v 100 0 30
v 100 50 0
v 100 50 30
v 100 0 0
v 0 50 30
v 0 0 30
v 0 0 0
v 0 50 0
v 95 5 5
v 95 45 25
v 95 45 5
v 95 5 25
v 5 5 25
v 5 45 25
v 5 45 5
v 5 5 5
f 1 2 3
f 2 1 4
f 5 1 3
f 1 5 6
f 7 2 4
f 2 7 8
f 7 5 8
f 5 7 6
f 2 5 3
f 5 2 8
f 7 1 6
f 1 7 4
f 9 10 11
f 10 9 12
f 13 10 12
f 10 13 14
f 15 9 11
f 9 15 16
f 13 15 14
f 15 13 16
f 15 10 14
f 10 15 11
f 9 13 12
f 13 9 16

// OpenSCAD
module open_box(width, height, depth, wall_thickness) {
  difference() {
    cube([width, height, depth]);
    translate([wall_thickness, wall_thickness, wall_thickness]) {
      cube([width - 2 * wall_thickness, height - 2 * wall_thickness, depth - 2 * wall_thickness]);
    }
  }
}

open_box(width = 100, height = 50, depth = 30, wall_thickness = 5);
